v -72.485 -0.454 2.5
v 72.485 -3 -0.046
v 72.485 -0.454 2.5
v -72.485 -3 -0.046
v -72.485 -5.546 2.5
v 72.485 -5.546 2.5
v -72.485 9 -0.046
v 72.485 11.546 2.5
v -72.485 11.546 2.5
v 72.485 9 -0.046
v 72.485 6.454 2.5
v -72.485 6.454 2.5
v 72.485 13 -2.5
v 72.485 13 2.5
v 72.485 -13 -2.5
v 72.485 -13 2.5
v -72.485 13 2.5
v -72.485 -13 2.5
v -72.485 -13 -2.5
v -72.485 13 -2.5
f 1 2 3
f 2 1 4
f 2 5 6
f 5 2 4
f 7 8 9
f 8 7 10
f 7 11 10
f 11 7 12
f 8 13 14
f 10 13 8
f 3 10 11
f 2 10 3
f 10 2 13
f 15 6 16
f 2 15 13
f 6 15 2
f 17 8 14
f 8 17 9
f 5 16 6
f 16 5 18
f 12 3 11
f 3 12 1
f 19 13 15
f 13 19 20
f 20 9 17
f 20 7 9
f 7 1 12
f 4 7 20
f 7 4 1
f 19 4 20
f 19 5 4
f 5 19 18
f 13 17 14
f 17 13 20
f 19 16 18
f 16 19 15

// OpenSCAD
$fn = 100;
difference()
{
  cube(size = [144.97, 26, 5], center = true);
  translate(v = [0, 3, 0])
  {
    union()
    {
      translate(v = [0, -6, 0])
      {
        translate(v = [0, 0, 2.5])
        {
          rotate(a = 45, v = [1, 0, 0])
          {
            cube(size = [145, 3.6, 3.6], center = true);
          }
        }
      }
      translate(v = [0, 6, 0])
      {
        translate(v = [0, 0, 2.5])
        {
          rotate(a = 45, v = [1, 0, 0])
          {
            cube(size = [145, 3.6, 3.6], center = true);
          }
        }
      }
    }
  }
}
